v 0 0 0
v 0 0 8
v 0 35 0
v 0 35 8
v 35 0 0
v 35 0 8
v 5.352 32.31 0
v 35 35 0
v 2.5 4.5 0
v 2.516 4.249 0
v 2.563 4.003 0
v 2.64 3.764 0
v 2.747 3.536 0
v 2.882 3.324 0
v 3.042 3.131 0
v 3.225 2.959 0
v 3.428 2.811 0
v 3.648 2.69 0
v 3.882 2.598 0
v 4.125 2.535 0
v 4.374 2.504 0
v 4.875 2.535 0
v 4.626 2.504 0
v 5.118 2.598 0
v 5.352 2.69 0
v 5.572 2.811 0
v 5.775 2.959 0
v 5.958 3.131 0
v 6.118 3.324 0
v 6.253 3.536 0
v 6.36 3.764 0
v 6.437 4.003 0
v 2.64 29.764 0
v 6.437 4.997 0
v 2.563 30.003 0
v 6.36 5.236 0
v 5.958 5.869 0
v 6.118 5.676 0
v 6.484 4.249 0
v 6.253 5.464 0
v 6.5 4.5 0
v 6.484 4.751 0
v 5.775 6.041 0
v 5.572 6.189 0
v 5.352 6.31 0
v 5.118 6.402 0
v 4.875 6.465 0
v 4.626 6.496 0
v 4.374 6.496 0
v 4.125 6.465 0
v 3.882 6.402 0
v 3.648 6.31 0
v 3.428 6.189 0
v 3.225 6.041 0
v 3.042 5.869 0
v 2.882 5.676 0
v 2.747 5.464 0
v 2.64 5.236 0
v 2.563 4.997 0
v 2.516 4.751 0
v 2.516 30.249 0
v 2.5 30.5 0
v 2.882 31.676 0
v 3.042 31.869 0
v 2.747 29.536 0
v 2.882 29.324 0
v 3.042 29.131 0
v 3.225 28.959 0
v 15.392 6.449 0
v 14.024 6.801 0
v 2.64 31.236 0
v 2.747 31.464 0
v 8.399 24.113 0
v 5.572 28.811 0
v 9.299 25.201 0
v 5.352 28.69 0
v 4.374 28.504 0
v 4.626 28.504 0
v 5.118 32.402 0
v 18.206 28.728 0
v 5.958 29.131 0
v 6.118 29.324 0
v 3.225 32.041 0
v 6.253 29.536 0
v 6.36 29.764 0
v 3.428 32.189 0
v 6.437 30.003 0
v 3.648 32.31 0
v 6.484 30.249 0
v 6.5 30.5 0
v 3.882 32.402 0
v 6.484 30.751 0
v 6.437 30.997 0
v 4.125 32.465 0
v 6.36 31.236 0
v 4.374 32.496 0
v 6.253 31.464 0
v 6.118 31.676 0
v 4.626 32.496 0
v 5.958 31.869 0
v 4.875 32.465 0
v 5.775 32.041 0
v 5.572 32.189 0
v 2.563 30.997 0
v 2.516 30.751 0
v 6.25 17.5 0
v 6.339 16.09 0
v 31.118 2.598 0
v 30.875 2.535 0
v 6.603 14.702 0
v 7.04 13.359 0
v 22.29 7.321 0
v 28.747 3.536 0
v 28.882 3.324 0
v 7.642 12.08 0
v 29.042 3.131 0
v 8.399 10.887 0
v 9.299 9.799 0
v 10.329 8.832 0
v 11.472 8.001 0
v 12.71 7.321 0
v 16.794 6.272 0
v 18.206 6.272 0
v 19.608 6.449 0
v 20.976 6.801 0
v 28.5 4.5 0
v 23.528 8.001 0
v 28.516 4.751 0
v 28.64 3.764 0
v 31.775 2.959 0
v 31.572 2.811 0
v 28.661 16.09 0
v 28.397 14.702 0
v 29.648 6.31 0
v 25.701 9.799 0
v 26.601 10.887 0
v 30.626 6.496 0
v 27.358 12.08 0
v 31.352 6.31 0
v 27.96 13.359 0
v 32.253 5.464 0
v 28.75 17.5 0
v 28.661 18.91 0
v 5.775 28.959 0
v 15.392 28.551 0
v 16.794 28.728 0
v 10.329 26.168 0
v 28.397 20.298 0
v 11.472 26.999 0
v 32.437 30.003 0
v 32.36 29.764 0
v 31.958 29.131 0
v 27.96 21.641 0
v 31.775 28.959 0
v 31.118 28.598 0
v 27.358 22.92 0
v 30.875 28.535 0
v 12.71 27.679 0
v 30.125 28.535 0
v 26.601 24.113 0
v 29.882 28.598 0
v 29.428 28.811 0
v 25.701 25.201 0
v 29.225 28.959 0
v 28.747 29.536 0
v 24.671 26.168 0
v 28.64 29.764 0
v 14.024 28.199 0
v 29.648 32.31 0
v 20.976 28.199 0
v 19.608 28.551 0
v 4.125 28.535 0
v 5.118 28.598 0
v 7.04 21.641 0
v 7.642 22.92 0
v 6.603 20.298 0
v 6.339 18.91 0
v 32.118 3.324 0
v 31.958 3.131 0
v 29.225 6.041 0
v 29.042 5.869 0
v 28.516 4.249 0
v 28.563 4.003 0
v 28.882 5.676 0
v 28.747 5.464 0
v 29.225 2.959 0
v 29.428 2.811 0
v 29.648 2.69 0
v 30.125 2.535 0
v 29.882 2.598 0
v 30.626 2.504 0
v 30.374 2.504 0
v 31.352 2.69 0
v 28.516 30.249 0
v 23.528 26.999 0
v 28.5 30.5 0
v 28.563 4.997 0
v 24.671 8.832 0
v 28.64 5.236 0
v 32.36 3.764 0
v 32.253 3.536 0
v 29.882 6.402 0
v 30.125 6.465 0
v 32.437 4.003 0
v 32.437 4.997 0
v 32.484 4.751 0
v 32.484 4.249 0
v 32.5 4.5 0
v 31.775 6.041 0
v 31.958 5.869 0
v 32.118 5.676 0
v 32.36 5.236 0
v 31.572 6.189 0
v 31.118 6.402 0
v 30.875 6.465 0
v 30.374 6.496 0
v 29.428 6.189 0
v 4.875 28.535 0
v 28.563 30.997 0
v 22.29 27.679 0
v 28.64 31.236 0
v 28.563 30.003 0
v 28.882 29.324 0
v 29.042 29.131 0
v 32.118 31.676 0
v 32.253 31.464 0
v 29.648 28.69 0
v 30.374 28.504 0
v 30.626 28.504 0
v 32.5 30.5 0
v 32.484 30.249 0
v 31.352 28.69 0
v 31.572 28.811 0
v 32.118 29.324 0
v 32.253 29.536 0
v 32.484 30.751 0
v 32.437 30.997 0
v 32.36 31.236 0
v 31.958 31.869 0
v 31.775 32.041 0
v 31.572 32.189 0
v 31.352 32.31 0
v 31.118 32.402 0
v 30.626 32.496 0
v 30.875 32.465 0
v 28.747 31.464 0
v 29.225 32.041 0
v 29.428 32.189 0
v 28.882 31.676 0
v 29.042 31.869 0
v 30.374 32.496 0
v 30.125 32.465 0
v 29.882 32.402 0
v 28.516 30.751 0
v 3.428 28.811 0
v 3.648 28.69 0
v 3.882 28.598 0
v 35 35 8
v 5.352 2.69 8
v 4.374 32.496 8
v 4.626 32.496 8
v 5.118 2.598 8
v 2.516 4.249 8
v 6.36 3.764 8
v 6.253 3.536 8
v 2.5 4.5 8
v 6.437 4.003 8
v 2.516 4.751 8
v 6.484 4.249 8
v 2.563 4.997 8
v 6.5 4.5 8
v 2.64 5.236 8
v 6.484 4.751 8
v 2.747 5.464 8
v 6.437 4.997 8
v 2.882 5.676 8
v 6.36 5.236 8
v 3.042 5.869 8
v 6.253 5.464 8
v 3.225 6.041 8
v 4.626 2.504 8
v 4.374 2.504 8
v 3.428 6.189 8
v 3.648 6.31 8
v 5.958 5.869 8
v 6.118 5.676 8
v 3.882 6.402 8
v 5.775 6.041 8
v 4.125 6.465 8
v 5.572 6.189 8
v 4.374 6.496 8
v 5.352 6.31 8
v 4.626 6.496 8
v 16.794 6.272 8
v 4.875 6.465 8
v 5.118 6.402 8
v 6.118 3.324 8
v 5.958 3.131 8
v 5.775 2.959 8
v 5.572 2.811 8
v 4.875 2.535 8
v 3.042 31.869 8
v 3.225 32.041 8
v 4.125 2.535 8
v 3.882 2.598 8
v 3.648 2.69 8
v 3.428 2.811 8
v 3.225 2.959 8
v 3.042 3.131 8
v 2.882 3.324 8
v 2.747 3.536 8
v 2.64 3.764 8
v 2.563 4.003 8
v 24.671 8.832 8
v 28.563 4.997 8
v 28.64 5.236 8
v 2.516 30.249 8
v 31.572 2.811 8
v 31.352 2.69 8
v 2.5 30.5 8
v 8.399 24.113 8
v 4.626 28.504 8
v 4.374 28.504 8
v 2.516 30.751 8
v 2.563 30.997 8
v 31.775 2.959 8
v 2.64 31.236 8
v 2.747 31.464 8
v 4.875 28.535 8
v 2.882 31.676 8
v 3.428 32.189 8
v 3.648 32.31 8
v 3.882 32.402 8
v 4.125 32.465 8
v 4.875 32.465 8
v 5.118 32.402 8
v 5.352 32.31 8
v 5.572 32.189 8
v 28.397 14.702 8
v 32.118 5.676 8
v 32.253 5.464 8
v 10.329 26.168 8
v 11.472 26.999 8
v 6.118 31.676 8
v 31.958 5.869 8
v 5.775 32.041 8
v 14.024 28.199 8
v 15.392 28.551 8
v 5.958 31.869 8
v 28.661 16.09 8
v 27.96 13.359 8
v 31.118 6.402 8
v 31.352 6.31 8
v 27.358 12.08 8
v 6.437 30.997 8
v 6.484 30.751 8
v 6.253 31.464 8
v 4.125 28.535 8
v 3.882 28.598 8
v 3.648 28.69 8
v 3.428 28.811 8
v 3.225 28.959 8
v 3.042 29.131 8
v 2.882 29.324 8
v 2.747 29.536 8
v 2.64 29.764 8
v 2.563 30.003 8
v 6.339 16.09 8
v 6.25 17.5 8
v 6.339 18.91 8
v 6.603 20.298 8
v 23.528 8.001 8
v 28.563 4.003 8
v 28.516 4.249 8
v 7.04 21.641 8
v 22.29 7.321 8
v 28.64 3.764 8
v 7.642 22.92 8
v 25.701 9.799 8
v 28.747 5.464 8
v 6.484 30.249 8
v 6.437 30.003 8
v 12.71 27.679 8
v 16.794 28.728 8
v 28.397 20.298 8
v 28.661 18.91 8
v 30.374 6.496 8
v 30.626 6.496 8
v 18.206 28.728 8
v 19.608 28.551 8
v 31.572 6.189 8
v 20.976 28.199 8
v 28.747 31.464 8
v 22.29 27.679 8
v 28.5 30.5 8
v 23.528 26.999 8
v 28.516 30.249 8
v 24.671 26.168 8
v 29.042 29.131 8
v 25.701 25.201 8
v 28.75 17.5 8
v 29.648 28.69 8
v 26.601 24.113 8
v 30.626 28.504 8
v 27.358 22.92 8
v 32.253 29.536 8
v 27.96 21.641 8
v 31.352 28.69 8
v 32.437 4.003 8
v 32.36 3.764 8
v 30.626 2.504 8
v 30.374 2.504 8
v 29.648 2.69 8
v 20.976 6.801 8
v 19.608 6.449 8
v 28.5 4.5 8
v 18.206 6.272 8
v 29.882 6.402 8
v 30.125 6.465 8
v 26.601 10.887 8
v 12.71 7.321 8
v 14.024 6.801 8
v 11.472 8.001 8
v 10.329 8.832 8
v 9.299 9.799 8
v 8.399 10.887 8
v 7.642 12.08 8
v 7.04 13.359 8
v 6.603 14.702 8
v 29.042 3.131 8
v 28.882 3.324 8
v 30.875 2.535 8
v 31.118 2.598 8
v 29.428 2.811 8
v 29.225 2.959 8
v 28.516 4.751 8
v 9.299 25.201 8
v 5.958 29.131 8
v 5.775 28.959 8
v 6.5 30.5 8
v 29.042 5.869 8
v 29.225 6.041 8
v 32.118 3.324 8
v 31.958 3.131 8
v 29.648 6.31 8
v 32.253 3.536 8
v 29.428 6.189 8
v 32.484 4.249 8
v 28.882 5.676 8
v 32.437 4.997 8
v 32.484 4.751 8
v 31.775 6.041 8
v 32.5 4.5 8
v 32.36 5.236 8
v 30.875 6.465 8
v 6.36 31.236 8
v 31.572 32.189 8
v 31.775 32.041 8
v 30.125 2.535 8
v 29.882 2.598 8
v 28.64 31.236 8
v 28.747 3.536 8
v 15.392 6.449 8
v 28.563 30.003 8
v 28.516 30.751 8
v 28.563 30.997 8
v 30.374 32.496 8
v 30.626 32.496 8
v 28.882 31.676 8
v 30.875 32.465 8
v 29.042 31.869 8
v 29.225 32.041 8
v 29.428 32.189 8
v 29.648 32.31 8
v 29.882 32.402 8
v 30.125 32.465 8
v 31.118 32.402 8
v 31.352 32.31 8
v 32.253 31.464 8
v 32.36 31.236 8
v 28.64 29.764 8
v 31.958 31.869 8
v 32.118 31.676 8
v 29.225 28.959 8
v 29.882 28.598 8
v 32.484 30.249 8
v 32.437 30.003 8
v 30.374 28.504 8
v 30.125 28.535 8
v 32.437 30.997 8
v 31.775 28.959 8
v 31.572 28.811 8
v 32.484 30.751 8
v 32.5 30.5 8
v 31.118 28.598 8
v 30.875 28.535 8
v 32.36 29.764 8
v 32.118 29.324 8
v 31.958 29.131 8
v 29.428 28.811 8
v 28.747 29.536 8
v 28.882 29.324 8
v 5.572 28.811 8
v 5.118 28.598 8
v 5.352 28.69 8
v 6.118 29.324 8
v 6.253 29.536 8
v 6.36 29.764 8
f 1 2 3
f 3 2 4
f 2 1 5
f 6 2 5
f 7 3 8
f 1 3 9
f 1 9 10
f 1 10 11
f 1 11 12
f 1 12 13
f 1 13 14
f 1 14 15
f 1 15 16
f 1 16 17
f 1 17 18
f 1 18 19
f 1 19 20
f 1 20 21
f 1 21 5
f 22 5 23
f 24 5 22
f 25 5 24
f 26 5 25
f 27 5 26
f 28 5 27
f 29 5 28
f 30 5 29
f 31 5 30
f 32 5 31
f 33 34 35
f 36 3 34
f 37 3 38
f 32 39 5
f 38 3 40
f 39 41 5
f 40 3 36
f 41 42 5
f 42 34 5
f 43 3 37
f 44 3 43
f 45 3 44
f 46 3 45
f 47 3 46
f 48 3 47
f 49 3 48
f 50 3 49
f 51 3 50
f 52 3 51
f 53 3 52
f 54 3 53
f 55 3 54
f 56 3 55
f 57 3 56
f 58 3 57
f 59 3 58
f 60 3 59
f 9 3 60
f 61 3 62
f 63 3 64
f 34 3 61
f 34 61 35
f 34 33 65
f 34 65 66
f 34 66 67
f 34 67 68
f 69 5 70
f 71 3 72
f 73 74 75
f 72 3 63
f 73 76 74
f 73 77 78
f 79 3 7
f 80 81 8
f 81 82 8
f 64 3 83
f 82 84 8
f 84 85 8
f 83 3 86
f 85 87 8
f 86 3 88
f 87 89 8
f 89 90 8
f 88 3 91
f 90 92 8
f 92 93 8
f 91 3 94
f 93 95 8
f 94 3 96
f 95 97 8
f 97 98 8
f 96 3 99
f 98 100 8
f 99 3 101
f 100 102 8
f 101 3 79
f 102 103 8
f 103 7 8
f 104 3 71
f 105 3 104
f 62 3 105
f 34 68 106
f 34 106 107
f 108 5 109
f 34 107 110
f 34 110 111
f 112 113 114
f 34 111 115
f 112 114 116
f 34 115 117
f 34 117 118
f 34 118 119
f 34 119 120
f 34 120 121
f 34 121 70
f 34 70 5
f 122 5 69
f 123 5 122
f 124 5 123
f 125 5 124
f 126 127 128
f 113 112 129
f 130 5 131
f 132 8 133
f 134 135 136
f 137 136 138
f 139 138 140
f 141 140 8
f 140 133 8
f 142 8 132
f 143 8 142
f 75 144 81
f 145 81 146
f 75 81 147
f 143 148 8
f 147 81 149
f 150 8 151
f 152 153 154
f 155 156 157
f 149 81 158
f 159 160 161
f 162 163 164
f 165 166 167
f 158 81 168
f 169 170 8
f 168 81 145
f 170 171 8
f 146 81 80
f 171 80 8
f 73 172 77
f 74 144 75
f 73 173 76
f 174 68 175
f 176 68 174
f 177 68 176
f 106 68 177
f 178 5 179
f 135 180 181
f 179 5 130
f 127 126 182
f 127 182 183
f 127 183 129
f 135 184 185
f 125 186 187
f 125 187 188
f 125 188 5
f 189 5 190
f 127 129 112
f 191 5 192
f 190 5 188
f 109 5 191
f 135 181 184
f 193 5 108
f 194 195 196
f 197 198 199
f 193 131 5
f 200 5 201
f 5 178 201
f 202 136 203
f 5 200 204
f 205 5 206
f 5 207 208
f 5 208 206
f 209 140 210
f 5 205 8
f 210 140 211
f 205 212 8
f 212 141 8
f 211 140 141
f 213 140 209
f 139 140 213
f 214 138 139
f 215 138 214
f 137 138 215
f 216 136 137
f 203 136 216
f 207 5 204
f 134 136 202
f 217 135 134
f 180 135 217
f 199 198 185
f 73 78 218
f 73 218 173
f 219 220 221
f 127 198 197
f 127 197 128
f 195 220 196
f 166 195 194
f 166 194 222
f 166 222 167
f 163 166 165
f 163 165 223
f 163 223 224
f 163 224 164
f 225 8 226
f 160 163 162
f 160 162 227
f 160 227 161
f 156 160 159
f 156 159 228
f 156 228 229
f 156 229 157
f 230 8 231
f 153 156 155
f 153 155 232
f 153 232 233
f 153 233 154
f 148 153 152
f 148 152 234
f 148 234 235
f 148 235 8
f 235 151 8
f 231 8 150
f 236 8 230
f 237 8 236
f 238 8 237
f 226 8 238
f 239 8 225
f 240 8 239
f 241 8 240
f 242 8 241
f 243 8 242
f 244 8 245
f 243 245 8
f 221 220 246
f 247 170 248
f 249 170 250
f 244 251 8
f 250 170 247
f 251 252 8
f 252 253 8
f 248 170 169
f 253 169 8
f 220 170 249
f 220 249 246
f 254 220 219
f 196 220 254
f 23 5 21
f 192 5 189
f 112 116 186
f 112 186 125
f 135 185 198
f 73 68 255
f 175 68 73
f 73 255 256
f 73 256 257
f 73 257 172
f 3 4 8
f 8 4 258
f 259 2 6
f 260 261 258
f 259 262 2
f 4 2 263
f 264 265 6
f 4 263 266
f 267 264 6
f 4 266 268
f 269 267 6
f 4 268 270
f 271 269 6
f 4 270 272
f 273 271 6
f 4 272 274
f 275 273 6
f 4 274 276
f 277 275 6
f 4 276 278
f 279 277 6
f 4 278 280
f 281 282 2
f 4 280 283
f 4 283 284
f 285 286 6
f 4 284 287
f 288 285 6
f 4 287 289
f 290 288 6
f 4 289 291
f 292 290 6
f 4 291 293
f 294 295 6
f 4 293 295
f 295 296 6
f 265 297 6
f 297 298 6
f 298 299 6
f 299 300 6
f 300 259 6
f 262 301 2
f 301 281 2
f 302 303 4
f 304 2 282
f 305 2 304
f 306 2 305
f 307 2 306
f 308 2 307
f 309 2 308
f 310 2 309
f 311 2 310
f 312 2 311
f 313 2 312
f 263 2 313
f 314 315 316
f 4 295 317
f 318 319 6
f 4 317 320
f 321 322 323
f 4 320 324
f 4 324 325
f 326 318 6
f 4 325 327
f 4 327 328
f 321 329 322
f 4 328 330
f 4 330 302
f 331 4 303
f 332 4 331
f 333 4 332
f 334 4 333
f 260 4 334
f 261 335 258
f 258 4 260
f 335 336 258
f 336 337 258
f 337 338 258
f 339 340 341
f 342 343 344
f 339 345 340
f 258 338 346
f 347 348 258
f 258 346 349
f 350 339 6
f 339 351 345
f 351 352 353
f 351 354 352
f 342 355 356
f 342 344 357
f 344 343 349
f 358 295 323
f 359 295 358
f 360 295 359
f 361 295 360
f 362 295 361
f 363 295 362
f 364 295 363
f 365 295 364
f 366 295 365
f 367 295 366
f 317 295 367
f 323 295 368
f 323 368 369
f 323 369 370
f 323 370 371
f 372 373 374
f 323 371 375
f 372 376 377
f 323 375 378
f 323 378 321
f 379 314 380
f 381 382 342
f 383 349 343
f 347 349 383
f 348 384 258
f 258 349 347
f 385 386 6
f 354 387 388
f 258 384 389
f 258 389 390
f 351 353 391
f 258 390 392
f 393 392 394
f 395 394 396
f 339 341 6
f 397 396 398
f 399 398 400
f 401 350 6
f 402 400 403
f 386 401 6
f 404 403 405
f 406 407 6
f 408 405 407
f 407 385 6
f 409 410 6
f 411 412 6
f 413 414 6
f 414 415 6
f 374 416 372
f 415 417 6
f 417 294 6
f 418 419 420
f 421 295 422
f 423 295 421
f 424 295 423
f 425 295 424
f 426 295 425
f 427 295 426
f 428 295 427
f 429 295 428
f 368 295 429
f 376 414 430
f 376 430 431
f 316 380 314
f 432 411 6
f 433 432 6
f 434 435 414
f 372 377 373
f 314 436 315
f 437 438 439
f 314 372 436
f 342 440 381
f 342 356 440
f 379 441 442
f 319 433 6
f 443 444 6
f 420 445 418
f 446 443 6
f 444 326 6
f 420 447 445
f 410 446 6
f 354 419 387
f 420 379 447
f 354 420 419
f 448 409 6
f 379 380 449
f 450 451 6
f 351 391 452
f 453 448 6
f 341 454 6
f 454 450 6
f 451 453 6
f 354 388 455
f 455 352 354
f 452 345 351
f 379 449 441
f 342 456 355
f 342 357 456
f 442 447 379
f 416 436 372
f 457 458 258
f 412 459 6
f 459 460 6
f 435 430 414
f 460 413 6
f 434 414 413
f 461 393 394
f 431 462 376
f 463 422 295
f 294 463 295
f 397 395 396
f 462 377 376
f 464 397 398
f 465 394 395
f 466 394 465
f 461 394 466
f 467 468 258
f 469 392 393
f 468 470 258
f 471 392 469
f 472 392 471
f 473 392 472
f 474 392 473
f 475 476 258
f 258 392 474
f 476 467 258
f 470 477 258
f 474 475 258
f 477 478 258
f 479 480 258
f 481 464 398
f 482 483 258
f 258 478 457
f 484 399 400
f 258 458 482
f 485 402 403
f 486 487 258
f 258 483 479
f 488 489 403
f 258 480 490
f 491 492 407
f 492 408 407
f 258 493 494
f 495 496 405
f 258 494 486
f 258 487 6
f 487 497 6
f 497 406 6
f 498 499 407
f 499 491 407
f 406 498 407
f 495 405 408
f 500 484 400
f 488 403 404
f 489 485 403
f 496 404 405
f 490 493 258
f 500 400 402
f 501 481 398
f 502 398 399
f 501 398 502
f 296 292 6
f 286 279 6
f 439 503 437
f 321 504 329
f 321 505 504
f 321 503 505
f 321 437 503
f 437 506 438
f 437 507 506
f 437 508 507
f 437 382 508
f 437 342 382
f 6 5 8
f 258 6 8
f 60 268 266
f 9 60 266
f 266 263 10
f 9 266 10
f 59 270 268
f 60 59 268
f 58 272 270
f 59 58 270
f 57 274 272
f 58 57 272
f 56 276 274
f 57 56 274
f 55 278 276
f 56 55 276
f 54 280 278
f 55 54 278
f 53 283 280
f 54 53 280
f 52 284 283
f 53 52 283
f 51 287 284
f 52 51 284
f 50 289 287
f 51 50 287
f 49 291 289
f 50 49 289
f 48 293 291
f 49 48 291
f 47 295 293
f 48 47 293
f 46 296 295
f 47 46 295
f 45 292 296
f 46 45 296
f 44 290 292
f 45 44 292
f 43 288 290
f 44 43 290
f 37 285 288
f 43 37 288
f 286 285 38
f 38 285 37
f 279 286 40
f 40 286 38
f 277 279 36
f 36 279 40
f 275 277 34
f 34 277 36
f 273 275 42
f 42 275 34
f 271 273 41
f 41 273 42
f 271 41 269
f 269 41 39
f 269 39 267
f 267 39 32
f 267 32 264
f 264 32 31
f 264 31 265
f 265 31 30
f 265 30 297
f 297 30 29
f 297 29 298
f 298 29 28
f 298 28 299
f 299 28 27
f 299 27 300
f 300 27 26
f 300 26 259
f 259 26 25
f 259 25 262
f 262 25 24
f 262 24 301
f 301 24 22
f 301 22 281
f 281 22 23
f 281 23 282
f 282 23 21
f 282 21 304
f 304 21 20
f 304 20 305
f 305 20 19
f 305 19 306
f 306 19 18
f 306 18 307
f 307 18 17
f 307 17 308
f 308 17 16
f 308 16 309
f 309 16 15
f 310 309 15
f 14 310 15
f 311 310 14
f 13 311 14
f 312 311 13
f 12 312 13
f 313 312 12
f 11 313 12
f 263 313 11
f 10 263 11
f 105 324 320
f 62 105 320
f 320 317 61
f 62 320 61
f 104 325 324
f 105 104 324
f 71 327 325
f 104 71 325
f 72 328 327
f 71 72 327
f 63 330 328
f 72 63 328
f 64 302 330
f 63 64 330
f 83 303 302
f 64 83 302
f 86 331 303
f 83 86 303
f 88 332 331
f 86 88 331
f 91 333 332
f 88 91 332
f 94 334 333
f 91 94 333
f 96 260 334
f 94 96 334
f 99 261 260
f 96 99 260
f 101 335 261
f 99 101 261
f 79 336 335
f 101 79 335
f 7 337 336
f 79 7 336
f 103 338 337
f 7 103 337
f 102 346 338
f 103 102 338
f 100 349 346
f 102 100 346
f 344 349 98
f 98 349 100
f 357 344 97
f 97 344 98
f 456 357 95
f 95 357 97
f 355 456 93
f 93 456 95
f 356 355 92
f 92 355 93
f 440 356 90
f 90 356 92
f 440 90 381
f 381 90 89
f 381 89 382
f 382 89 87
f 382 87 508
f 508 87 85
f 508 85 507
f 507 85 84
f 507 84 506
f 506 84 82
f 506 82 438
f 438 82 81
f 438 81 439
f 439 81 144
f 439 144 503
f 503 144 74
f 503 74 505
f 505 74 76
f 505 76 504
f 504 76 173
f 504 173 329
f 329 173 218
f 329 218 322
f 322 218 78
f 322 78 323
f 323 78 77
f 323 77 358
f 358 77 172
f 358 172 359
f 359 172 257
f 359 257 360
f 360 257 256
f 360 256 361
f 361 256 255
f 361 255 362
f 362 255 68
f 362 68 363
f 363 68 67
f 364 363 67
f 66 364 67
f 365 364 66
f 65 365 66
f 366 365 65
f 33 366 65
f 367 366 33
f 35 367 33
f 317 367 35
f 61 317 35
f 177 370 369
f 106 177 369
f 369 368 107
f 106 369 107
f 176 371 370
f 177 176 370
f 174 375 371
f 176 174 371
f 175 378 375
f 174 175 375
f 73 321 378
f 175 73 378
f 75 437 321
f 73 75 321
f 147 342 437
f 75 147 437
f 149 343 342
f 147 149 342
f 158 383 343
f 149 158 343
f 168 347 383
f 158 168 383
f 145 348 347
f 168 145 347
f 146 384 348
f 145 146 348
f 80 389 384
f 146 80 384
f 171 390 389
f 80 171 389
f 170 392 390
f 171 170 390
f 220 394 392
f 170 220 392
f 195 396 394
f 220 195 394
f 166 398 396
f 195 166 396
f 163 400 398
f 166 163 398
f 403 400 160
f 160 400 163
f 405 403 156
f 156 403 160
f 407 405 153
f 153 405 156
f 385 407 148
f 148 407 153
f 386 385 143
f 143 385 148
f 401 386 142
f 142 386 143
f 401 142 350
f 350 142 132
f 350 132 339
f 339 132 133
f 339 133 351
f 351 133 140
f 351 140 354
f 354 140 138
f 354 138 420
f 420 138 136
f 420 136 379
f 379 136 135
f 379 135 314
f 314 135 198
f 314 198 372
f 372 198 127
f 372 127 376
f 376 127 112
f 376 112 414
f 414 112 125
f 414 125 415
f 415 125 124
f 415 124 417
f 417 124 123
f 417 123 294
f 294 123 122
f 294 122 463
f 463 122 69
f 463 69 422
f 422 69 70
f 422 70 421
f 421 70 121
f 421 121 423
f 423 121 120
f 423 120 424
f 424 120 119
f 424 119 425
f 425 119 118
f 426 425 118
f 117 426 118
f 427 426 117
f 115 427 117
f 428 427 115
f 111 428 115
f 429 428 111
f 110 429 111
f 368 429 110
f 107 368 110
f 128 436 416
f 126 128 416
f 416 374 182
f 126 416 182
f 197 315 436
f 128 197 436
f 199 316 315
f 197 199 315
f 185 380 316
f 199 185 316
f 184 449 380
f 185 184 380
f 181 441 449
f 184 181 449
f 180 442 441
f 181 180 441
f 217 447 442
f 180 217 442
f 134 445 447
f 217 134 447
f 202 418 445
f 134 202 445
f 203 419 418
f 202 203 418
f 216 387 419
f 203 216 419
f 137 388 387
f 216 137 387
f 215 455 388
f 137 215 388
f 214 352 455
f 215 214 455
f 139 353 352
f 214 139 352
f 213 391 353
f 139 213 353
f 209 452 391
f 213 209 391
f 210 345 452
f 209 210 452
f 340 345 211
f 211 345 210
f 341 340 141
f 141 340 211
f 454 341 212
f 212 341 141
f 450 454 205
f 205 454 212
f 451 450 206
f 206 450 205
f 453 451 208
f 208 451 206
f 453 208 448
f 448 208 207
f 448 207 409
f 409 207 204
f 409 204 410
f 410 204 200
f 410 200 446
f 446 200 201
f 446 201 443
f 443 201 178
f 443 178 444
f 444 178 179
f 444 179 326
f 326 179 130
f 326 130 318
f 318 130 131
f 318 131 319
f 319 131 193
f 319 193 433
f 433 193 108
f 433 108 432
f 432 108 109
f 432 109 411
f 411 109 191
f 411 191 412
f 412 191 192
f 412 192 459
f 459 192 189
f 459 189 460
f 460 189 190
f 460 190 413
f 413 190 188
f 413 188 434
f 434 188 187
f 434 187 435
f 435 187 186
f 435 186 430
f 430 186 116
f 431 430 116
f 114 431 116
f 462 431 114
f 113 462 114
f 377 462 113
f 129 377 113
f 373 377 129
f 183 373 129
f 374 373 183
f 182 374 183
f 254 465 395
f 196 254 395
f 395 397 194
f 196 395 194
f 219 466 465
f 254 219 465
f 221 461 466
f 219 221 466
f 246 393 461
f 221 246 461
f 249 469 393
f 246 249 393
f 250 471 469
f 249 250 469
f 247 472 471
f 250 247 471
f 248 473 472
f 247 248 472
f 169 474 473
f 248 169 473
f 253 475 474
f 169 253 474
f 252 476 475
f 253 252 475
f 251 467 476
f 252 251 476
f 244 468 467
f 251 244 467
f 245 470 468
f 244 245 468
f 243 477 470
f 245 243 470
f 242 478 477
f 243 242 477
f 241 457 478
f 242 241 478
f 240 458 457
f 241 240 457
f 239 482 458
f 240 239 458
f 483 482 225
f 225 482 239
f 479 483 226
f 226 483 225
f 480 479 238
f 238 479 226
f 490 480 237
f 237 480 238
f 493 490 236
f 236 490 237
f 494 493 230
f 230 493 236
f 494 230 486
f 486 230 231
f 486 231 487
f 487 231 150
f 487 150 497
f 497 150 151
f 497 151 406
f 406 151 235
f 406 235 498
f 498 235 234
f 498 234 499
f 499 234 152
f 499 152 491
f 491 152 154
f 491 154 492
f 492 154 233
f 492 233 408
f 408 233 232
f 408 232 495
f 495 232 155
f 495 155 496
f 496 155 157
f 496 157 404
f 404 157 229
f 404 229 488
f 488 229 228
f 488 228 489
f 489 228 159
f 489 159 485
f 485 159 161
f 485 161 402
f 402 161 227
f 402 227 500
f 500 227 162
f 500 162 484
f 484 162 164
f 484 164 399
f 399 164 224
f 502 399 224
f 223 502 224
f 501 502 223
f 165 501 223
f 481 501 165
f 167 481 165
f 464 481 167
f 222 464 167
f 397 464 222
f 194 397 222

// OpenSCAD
r_m3=2;


module plaque_608ZZ(){
	difference(){
		cube([35,35,8]);
		translate([4.5,4.5,-2]){cylinder(r=r_m3, h=15, $fn=50);}
		translate([4.5,30.5,-2]){cylinder(r=r_m3, h=15, $fn=50);}
		translate([30.5,4.5,-2]){cylinder(r=r_m3, h=15, $fn=50);}
		translate([30.5,30.5,-2]){cylinder(r=r_m3, h=15, $fn=50);}
		translate([17.5,17.5,-2]){cylinder(r=11.25, h=15, $fn=50);}
	}
}
plaque_608ZZ();
